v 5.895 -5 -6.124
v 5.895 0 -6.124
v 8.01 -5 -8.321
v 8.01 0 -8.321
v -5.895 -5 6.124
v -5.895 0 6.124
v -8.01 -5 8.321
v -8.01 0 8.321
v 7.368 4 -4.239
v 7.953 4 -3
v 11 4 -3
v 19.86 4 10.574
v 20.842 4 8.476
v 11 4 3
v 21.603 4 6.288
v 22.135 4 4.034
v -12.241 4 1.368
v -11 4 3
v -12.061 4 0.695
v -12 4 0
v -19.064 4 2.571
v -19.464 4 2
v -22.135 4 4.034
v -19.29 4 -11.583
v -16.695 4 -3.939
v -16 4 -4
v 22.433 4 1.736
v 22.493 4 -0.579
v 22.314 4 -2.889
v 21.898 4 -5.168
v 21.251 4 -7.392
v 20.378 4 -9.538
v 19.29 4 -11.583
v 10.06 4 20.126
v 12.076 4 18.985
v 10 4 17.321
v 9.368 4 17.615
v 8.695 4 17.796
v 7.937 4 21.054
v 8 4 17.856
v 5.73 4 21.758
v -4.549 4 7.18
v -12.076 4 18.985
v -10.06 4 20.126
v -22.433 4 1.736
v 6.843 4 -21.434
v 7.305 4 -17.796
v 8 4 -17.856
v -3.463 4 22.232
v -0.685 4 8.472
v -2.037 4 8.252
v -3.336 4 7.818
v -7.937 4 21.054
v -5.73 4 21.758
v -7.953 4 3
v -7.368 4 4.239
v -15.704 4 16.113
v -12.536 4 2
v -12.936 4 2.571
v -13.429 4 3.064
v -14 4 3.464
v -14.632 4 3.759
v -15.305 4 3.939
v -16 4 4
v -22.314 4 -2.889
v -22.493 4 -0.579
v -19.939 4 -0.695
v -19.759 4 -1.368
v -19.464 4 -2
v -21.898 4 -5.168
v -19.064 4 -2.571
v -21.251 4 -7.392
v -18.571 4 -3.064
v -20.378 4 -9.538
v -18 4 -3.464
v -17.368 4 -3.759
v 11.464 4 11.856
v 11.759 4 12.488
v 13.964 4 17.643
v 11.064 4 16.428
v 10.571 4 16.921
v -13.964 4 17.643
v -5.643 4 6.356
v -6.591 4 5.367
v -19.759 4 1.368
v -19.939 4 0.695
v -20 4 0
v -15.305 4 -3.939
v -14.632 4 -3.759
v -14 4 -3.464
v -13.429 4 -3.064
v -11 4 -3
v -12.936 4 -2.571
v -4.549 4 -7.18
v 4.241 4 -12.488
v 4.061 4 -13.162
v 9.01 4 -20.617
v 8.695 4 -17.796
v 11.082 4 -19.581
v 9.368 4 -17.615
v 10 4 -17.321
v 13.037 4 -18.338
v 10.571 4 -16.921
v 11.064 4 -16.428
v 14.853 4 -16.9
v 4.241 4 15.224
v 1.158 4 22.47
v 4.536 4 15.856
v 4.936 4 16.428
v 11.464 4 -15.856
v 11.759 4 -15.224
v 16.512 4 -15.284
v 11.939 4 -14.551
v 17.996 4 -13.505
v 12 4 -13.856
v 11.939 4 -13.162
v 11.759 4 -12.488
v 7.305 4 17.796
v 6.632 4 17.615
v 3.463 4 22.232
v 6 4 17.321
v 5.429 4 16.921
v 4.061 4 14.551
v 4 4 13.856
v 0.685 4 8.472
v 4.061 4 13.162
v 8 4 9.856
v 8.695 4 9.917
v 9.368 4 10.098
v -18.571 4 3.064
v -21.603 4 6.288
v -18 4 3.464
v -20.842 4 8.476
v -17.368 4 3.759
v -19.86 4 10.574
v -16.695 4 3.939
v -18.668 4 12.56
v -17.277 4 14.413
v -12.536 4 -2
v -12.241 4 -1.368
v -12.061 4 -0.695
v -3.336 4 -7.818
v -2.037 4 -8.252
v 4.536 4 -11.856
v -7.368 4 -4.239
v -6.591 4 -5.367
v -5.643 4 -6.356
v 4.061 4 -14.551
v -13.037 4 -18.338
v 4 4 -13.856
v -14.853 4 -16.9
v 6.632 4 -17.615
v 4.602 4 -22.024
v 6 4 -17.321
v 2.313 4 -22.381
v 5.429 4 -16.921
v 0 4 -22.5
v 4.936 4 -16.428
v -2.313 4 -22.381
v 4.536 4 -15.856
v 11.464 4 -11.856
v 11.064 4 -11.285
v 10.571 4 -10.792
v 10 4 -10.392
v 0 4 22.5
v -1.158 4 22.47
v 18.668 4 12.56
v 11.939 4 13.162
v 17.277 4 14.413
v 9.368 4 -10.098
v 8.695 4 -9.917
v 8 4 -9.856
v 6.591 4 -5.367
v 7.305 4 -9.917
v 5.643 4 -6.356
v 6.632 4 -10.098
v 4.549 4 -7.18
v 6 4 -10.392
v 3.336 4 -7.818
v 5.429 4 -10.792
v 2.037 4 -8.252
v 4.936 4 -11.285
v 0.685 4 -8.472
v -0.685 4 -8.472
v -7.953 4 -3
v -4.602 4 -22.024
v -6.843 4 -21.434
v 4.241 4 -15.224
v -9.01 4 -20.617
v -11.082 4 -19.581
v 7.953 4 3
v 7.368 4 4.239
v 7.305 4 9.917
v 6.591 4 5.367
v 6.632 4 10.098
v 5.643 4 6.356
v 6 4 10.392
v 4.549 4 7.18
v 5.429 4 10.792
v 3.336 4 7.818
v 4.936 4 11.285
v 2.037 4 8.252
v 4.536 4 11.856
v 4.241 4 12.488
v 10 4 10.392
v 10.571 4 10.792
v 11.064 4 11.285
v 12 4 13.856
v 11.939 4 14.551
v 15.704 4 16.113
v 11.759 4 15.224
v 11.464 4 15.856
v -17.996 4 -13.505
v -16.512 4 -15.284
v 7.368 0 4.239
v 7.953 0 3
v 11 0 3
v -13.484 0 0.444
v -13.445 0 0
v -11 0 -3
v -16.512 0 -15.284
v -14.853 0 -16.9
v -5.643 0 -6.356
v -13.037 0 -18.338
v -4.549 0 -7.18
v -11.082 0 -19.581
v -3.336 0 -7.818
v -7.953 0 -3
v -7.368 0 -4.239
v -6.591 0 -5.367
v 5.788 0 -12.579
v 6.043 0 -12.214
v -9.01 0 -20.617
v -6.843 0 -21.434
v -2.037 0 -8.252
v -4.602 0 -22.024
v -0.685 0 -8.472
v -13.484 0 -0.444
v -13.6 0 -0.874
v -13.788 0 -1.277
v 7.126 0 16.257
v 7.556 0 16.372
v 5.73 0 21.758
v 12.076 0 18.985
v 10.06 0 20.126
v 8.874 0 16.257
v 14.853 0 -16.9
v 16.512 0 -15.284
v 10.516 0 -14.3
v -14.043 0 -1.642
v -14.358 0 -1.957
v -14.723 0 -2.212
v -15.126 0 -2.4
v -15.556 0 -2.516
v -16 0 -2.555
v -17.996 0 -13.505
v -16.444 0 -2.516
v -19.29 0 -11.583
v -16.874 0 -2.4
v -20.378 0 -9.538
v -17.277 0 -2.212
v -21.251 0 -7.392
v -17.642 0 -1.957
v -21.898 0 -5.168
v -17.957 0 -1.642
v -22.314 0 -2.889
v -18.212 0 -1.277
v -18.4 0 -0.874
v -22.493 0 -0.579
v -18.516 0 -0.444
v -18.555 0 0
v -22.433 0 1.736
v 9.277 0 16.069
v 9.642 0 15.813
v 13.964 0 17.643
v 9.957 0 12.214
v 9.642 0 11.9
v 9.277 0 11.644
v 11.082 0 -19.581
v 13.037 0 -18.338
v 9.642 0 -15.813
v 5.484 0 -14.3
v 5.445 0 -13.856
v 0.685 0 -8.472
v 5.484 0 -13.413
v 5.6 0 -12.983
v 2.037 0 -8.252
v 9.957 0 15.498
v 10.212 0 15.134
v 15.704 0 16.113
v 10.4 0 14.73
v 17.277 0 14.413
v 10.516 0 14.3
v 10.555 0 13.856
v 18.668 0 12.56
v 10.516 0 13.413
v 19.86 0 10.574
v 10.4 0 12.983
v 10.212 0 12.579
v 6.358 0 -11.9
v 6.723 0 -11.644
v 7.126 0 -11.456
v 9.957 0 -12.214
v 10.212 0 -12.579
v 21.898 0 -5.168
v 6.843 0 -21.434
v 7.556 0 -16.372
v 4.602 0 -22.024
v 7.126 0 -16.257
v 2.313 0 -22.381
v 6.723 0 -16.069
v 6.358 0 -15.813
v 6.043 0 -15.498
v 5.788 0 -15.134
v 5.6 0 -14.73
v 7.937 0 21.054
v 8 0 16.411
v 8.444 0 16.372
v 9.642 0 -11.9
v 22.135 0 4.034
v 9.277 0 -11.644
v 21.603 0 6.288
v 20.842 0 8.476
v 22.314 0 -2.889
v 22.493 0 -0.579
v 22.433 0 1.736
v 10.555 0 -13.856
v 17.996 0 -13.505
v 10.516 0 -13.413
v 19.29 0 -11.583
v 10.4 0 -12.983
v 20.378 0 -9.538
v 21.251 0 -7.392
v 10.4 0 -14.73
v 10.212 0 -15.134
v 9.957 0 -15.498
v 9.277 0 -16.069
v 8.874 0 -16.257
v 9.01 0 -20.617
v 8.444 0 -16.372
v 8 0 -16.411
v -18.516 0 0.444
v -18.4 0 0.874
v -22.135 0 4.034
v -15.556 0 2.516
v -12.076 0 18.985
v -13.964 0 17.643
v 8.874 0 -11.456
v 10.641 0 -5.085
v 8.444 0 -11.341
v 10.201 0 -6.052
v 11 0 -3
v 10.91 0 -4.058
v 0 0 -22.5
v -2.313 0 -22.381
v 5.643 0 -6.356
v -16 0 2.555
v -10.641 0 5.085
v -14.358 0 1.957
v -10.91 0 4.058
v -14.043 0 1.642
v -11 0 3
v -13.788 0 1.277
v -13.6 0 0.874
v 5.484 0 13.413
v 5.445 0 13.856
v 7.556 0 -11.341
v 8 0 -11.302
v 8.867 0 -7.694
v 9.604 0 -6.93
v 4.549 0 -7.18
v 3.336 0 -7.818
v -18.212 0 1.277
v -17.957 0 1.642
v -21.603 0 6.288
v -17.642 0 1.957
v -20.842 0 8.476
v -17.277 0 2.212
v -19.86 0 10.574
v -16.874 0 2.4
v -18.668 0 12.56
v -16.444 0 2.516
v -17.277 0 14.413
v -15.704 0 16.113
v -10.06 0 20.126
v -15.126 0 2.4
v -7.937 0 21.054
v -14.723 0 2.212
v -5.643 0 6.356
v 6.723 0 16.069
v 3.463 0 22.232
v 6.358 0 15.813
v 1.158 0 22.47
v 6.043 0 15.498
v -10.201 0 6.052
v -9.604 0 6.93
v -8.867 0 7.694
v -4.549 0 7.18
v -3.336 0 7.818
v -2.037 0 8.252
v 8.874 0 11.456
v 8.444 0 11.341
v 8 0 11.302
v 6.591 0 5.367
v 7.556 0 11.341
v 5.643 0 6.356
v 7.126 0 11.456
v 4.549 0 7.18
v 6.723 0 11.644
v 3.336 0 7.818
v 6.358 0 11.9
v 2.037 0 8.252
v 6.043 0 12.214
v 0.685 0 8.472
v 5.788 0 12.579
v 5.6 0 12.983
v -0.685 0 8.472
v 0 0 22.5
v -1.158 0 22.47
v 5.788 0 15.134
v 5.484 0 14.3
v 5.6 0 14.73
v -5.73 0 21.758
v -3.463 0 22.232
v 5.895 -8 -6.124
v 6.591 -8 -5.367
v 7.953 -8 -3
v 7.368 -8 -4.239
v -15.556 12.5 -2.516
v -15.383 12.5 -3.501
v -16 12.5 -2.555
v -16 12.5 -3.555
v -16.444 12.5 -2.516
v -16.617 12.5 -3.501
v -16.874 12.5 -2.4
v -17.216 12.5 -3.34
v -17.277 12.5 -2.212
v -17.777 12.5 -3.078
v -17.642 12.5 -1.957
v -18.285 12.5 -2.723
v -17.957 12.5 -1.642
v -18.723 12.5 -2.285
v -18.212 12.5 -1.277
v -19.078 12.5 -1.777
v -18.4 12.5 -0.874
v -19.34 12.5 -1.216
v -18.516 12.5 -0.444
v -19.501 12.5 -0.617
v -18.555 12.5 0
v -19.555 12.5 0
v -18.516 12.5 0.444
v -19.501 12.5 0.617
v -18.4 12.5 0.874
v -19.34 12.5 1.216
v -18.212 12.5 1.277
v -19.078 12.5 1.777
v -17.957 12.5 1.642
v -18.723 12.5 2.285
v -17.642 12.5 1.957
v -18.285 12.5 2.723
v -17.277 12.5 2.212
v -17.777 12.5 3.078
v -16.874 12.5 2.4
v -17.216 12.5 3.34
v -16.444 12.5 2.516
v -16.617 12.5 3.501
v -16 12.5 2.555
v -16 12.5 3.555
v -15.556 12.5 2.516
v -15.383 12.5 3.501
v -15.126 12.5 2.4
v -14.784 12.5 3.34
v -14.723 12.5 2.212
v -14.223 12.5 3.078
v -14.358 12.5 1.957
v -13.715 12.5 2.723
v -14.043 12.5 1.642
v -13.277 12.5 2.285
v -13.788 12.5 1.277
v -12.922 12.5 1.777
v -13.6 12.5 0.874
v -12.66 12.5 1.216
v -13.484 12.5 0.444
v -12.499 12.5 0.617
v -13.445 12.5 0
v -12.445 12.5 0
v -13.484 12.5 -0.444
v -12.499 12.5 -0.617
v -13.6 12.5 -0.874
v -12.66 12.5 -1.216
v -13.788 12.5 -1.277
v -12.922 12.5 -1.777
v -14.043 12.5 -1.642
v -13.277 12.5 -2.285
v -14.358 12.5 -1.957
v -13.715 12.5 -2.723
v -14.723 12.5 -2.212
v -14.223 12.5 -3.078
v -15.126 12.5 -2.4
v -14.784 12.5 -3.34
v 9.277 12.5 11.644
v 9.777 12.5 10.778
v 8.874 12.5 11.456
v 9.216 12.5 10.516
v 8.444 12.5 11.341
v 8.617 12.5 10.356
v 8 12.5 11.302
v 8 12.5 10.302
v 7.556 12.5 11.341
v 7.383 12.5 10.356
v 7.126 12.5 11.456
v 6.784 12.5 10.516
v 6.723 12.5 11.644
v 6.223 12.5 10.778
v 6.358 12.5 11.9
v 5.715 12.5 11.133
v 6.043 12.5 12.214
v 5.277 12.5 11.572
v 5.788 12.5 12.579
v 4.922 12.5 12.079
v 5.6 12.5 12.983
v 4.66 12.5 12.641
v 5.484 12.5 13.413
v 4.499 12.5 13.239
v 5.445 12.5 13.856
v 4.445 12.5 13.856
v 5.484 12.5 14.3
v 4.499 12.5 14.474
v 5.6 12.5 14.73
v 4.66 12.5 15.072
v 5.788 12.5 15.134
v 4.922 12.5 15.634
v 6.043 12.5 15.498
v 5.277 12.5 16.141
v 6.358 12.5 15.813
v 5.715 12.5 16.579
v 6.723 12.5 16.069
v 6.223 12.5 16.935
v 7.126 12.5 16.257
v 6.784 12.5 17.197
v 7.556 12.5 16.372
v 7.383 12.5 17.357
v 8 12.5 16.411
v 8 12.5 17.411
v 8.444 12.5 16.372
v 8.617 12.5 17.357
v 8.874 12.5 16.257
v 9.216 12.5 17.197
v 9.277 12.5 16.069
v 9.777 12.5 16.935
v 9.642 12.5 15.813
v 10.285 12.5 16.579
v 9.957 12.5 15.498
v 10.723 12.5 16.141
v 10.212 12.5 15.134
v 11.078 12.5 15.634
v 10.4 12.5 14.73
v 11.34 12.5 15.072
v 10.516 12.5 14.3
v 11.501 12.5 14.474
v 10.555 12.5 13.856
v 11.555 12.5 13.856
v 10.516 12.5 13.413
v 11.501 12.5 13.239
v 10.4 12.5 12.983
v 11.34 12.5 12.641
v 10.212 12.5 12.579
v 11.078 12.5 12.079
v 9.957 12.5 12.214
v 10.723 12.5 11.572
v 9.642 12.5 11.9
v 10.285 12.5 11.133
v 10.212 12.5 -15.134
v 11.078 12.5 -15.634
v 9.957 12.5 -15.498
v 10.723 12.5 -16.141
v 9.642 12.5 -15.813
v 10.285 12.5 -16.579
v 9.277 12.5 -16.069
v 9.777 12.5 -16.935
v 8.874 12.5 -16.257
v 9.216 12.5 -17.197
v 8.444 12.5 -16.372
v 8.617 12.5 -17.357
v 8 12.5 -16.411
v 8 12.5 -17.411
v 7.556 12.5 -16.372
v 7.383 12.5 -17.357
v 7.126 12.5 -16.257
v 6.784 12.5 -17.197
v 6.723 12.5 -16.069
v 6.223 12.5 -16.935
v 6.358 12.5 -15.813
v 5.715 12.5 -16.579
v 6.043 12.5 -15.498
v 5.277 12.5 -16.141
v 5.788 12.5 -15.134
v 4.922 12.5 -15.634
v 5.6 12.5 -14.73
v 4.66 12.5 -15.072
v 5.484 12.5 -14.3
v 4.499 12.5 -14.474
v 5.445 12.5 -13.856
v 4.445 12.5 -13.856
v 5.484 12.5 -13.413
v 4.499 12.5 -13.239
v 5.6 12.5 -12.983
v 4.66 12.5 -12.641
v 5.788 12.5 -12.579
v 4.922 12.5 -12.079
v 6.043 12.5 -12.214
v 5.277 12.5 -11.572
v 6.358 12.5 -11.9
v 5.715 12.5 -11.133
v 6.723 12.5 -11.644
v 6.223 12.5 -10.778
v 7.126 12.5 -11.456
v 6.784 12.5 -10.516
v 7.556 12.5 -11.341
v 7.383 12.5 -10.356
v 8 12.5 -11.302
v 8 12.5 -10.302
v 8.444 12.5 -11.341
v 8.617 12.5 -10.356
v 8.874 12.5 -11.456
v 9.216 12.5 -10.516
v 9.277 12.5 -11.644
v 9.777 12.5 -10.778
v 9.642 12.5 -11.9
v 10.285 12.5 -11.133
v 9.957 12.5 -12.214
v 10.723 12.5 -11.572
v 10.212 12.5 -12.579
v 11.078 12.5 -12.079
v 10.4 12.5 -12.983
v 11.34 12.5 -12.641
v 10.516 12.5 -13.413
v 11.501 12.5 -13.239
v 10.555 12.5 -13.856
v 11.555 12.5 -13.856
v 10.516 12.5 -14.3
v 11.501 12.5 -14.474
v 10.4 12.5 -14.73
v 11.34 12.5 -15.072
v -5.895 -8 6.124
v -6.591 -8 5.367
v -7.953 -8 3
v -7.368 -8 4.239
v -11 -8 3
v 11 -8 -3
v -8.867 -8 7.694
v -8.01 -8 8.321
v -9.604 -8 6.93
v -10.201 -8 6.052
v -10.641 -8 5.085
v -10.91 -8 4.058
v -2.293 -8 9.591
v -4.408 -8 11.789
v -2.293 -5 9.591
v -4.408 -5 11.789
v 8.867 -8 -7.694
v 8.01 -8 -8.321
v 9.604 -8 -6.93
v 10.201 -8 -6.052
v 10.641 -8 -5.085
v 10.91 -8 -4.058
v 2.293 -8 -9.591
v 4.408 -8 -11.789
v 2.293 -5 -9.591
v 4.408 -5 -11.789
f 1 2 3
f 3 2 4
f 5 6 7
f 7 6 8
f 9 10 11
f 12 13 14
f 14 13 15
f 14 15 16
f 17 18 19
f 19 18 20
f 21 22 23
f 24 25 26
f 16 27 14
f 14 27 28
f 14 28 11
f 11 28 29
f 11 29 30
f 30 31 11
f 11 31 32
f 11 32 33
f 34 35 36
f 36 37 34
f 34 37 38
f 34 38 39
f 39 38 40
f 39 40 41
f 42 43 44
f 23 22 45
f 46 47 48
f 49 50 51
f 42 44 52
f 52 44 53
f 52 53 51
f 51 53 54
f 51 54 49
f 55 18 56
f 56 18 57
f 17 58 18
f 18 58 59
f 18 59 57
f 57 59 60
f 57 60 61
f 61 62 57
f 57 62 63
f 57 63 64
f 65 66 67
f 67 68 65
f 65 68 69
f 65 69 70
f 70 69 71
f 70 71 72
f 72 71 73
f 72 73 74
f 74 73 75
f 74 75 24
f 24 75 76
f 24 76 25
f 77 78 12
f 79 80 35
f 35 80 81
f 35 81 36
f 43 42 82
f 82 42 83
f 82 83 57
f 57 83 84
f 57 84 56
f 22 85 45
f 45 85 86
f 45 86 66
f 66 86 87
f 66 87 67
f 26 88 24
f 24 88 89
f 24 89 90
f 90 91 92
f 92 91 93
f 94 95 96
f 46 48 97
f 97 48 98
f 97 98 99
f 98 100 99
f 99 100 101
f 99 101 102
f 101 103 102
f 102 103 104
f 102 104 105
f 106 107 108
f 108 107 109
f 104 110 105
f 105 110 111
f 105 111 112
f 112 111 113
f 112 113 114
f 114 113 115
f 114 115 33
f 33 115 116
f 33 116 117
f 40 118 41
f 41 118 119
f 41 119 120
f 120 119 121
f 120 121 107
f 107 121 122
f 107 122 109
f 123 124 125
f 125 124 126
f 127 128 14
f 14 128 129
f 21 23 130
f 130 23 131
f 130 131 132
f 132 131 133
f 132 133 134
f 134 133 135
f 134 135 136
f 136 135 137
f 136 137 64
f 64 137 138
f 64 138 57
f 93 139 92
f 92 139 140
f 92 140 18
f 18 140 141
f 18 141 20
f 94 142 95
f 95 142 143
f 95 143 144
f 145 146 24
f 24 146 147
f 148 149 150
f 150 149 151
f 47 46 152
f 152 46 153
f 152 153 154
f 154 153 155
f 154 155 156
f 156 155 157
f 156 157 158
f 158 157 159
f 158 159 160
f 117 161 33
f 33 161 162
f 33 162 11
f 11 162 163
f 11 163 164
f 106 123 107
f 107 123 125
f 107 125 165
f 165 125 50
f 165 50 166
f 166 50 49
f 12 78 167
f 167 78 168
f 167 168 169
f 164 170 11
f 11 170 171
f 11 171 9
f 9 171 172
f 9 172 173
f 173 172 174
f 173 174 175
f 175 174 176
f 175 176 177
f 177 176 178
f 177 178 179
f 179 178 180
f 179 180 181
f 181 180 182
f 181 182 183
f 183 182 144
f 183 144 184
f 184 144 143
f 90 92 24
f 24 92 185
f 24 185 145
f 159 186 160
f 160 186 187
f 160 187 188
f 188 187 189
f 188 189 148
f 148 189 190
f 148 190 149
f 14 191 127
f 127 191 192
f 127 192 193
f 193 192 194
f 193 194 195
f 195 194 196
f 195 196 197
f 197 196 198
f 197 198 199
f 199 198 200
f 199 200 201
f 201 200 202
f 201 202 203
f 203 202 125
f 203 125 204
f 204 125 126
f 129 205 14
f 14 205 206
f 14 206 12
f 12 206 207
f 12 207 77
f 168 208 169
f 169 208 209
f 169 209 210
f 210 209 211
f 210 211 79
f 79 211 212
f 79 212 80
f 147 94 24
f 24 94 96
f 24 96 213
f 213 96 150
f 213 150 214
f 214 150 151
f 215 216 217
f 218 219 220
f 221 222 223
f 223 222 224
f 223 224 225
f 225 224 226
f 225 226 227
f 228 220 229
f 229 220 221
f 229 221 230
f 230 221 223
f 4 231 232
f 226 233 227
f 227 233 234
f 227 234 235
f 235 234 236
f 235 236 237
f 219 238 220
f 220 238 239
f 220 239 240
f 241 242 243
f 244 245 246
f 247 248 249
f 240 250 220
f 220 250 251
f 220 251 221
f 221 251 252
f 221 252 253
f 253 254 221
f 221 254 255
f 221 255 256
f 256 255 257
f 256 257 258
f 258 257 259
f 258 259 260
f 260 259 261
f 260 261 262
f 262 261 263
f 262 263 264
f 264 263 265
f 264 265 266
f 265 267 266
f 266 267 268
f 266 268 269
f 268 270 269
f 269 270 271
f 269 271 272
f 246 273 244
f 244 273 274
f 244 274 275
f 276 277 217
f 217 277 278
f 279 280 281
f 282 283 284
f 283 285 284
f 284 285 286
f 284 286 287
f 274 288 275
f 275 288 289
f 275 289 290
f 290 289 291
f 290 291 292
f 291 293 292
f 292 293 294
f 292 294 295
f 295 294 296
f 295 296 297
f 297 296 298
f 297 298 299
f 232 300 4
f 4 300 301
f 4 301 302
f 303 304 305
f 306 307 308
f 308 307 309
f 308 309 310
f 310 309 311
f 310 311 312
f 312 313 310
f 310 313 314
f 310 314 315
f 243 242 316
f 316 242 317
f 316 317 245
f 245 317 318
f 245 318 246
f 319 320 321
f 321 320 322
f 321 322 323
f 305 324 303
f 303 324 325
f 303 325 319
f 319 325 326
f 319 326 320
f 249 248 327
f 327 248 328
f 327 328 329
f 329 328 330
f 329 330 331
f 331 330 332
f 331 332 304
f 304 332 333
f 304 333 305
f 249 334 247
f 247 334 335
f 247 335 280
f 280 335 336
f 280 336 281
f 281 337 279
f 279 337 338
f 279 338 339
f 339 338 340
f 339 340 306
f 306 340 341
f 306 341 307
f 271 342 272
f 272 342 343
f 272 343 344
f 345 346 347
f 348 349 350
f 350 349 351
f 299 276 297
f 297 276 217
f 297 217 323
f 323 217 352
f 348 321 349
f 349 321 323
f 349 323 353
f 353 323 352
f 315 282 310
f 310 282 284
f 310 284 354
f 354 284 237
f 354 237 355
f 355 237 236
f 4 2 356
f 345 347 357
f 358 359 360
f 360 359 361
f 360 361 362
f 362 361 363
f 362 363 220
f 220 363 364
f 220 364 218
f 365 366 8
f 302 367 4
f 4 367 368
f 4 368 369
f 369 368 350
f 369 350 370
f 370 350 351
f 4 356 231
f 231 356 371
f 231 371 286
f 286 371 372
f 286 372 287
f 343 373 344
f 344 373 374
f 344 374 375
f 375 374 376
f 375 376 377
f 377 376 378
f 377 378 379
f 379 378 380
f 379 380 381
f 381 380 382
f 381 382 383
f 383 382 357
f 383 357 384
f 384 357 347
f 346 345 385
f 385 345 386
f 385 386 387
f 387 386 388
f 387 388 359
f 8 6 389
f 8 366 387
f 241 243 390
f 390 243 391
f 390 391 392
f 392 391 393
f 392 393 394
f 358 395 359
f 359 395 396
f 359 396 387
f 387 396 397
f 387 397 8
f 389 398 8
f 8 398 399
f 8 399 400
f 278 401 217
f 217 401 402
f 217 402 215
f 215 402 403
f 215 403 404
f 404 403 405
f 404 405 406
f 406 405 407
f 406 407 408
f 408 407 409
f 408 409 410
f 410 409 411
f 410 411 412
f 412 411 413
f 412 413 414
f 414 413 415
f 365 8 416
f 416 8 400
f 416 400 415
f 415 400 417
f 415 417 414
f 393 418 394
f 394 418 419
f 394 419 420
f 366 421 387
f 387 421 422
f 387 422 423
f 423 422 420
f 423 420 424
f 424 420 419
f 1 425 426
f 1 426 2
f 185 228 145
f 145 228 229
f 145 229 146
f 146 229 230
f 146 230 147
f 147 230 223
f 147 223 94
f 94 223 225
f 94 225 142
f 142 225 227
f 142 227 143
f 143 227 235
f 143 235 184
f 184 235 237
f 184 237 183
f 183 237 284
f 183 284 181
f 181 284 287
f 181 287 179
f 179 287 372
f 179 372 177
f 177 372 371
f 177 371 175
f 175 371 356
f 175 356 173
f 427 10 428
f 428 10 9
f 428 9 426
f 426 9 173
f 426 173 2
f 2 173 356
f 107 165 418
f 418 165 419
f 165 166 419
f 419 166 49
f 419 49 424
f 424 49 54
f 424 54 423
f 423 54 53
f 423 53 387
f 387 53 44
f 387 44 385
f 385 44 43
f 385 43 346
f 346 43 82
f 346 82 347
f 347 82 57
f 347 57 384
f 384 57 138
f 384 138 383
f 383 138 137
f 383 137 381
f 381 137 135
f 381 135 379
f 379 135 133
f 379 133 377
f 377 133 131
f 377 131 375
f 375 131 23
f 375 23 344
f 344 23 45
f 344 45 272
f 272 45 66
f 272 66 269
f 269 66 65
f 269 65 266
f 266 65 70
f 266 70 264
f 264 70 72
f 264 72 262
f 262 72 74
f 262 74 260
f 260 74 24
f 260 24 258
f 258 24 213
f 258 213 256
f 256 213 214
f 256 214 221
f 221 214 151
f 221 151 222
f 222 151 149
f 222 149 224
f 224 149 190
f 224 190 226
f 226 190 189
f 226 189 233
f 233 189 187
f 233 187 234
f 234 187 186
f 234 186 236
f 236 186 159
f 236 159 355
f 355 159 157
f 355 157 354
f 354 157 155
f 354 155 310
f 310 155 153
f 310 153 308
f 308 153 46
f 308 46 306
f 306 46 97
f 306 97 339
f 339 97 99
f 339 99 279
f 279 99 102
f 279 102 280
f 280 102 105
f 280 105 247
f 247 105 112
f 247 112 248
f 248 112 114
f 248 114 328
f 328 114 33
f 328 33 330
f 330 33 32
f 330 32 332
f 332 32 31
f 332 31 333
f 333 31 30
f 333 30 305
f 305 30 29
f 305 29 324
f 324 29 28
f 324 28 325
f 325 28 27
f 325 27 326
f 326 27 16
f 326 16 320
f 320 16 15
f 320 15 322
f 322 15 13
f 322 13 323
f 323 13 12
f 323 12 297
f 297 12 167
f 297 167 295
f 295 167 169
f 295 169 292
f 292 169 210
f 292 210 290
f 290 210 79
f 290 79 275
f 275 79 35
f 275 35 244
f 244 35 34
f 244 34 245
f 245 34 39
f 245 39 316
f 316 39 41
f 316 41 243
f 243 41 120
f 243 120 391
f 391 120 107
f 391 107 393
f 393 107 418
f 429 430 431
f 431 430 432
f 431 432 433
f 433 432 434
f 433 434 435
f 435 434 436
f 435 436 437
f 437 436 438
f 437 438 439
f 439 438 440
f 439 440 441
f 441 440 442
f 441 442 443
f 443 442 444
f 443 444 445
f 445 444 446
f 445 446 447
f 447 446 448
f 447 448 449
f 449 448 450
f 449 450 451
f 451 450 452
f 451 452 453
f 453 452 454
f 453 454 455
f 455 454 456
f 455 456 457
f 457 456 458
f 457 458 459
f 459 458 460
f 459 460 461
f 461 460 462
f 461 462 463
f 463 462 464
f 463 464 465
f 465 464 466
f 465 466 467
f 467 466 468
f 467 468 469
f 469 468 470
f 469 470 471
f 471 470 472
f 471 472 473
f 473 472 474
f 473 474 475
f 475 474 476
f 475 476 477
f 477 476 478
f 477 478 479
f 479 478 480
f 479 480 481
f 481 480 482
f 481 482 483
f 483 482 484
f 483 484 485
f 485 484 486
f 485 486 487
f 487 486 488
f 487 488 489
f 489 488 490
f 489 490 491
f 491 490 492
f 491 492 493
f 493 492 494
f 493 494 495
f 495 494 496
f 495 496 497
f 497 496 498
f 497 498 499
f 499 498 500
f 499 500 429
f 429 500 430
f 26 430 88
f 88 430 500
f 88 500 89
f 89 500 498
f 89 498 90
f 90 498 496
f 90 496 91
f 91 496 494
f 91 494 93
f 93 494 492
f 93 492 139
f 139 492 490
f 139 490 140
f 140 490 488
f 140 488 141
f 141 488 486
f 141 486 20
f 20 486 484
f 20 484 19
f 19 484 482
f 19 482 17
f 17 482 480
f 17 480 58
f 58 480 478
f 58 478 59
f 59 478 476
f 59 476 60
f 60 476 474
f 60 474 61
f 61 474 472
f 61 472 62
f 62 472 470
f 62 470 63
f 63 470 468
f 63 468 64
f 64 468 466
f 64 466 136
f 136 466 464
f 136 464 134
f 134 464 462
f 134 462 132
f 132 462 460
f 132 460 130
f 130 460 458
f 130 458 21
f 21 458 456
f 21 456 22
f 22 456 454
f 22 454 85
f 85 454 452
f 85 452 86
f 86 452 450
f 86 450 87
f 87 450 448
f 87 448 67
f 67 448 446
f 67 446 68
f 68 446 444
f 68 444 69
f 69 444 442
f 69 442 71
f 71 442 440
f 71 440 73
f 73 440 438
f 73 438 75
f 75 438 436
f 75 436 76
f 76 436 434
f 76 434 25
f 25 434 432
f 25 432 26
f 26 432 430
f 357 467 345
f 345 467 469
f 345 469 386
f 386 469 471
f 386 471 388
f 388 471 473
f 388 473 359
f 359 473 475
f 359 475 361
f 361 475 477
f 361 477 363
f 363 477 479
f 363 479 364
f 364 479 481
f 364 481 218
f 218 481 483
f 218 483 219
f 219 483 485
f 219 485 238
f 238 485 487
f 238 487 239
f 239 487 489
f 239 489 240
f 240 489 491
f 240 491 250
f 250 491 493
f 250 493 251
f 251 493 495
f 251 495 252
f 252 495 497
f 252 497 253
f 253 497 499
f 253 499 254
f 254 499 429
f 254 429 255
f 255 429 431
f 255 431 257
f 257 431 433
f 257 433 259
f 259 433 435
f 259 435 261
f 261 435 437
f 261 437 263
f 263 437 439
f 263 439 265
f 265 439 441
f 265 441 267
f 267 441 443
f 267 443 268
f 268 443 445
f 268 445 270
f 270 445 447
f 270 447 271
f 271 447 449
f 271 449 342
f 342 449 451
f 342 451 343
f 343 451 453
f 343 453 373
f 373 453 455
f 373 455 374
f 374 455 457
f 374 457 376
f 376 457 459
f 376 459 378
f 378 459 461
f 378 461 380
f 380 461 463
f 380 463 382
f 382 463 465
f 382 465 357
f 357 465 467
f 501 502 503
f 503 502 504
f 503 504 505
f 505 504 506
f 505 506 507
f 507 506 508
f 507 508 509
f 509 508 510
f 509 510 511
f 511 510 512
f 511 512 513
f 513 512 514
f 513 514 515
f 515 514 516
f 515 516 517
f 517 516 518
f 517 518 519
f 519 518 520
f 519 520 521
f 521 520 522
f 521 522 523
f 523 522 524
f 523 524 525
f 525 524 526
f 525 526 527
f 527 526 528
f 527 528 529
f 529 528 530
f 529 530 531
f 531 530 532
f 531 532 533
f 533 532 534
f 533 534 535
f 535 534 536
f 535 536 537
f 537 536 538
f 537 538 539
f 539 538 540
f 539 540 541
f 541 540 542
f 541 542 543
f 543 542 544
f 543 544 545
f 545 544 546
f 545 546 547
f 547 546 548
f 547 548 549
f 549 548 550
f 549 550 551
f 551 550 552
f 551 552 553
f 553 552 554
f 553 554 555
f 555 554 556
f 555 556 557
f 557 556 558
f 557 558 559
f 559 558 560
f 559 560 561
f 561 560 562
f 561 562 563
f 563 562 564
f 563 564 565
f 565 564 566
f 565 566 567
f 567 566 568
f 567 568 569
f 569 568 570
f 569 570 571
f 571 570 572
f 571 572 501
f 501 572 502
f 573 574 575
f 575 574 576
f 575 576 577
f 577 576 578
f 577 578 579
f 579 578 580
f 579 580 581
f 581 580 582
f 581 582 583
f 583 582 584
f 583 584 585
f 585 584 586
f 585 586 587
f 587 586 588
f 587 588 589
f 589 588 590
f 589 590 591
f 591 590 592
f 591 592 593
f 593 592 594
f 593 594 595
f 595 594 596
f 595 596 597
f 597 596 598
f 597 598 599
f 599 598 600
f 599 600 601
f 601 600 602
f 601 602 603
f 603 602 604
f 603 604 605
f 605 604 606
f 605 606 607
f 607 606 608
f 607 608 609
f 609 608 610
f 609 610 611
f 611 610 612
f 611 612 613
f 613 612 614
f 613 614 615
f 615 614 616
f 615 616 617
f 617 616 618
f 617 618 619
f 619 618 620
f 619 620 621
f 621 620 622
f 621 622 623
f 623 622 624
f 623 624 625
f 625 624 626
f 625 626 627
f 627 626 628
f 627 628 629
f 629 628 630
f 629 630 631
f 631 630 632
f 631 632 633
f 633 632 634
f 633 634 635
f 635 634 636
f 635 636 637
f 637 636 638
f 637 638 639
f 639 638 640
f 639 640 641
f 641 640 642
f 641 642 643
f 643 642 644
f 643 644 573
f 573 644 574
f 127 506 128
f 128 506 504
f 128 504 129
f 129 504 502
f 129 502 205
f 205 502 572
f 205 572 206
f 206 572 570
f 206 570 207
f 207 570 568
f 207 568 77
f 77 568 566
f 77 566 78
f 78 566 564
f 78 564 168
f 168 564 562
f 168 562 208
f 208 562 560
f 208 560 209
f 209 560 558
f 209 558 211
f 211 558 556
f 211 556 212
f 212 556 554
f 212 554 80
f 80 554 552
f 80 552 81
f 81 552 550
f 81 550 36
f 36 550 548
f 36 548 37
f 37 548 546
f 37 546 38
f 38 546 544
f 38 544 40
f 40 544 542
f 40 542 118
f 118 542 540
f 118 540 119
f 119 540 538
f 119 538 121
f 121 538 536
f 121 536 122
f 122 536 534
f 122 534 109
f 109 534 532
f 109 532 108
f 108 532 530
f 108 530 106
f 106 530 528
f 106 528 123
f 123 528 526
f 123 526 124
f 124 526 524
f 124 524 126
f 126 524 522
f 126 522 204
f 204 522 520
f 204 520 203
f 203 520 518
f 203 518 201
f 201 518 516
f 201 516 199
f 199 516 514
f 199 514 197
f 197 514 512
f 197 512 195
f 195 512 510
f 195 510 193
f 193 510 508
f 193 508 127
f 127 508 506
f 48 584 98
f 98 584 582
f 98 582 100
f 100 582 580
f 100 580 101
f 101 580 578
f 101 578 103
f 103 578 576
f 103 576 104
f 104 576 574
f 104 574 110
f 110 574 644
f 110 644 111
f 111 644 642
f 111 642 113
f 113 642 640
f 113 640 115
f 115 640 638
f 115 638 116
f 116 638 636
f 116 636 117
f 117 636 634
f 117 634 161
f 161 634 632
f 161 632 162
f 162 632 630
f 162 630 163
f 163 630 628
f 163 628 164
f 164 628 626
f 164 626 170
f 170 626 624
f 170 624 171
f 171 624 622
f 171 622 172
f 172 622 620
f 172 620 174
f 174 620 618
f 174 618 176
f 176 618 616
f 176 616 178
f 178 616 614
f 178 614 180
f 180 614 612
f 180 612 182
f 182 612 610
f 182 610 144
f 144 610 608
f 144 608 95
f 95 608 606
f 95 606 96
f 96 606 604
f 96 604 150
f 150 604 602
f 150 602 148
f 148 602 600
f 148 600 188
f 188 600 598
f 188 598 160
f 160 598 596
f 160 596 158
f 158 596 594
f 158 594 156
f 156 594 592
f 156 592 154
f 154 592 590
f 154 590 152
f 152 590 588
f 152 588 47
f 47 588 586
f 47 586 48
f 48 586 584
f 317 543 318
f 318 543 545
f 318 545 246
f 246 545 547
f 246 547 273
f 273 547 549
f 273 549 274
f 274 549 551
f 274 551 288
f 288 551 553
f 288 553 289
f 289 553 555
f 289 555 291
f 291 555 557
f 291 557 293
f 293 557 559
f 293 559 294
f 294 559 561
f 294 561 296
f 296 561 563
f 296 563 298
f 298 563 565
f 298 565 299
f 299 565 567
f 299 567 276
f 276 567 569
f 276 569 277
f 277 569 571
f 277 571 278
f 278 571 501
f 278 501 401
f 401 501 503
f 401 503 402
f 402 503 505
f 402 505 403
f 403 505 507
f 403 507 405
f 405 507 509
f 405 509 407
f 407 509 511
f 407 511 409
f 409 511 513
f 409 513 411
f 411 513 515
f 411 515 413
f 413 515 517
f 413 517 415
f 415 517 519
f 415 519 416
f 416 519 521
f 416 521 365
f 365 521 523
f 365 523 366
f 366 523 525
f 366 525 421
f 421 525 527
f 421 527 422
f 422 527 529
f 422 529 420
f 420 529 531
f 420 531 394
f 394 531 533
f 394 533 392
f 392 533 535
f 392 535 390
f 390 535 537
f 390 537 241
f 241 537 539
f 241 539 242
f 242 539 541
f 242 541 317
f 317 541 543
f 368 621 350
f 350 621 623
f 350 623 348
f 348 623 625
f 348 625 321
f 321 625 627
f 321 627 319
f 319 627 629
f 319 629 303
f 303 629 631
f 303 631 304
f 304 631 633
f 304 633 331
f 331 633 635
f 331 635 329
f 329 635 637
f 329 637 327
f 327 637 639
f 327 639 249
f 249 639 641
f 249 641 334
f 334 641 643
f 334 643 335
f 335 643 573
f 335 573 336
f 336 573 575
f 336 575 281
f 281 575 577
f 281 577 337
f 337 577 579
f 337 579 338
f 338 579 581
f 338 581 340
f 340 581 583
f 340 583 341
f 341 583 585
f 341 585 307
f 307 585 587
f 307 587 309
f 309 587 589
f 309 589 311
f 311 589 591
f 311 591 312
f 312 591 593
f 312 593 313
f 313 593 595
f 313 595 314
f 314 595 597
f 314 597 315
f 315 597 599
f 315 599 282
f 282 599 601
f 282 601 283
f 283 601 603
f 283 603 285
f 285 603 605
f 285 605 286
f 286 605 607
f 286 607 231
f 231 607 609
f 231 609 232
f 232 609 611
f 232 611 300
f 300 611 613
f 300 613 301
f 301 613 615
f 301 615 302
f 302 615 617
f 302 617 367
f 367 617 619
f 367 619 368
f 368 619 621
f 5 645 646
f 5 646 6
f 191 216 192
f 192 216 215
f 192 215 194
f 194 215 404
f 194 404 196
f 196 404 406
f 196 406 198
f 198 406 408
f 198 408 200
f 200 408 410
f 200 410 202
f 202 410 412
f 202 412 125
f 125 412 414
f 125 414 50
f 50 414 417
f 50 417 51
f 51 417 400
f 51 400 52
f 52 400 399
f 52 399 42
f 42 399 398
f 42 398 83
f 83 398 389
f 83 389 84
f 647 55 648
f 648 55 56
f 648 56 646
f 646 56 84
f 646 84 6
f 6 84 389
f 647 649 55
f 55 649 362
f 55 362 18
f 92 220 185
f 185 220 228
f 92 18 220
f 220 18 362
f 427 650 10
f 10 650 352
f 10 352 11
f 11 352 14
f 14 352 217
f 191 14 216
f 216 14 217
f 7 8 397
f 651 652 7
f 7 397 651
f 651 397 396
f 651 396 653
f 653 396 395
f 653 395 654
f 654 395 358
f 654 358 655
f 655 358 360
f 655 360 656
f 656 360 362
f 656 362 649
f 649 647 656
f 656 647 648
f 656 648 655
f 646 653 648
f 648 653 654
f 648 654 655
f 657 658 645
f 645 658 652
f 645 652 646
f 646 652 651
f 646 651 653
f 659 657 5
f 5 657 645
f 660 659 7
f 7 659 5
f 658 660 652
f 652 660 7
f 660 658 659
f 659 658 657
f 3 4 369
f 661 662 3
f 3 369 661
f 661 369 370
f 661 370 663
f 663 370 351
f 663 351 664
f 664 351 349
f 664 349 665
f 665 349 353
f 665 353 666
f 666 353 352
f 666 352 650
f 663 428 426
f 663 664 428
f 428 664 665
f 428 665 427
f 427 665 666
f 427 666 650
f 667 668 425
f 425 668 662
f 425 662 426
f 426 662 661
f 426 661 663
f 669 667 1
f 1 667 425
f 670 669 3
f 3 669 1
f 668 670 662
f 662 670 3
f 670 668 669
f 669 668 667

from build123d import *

# Parameters (mm, degrees)
ESQUISSE1_R                                 = 22.5
BOSS_EXTRU_1_DEPTH                          = 4
ESQUISSE2_R                                 = 4
BOSS_EXTRU_3_DEPTH                          = 8.5
CHANFREIN1_SIZE                             = 8.5
CHANFREIN1_SIZE_2                           = 0.445466124
ESQUISSE4_R                                 = 2.554533876
ENL_V_MAT_EXTRU_1_DEPTH                     = 35.186985828
R_P_TITION_CIRCULAIRE1_COUNT                = 3
CHANFREIN1_OF_R_P_TITION_CIRCULAIRE1_SIZE   = 8.5
CHANFREIN1_OF_R_P_TITION_CIRCULAIRE1_SIZE_2 = 0.445466124
ENL_V_MAT_EXTRU_2_REACH                     = 34.936
ESQUISSE5_R                                 = 8.5
ENL_V_START                                 = -4
ESQUISSE6_W                                 = 22
ESQUISSE6_H                                 = 6
ENL_V_MAT_EXTRU_4_DEPTH                     = 4
BOSS_EXTRU_5_DEPTH                          = 8
ESQUISSE8_W                                 = 3.05
ESQUISSE8_H                                 = 3
BOSS_EXTRU_6_DEPTH                          = 5
R_P_TITION_CIRCULAIRE3_COUNT                = 2


with BuildPart() as part:
    # Esquisse1 → Boss.-Extru.1 (new body)
    with BuildSketch(Plane(origin=(0, 0, 0), x_dir=(1, 0, 0), z_dir=(0, 1, 0))):
        with Locations(Location((0, 0, 0), (0, 0, 270))):
            Circle(ESQUISSE1_R)
    extrude(amount=BOSS_EXTRU_1_DEPTH)

    # Esquisse2 → Boss.-Extru.3 (add)
    with BuildSketch(Plane(origin=(0, 4, 0), x_dir=(1, 0, 0), z_dir=(0, 1, 0))):
        with Locations(Location((-16, 0, 0), (0, 0, 270))):
            Circle(ESQUISSE2_R)
    boss_extru_3 = extrude(amount=BOSS_EXTRU_3_DEPTH)

    # Chanfrein1
    # the kernel refuses this chamfer: 8.5, 0.445466124 mm, written as the material it takes off along each edge
    with BuildSketch(Plane(origin=(-16, 12.5, 0), x_dir=(0, 0, 1), z_dir=(-1, 0, 0))) as chanfrein1_piece_1_section:
        Polygon((4, -CHANFREIN1_SIZE), (4 - CHANFREIN1_SIZE_2, 0), (4, 0), align=None)
    chanfrein1_piece_1 = revolve(axis=Axis((-16, 12.5, 0), (0, 1, 0)), mode=Mode.PRIVATE)
    chanfrein1_piece_1 = split(chanfrein1_piece_1, bisect_by=Plane(origin=(-16, 4, -3.812448858), z_dir=(0, 1, 0)), keep=Keep.TOP, mode=Mode.PRIVATE)
    add(chanfrein1_piece_1, mode=Mode.SUBTRACT)

    # Esquisse4 → Enlèv. mat.-Extru.1 (cut, through all)
    with BuildSketch(Plane(origin=(0, 12.5, 0), x_dir=(1, 0, 0), z_dir=(0, 1, 0))):
        with Locations(Location((-16, 0, 0), (0, 0, 270))):
            Circle(ESQUISSE4_R)
    enl_v_mat_extru_1 = extrude(amount=-ENL_V_MAT_EXTRU_1_DEPTH, mode=Mode.SUBTRACT)

    # Répétition circulaire1: Boss.-Extru.3, Enlèv. mat.-Extru.1 ×3 about axis
    r_p_tition_circulaire1_axis = Axis((0, 0, 0), (0, 1, 0))
    add([boss_extru_3.rotate(r_p_tition_circulaire1_axis, i * 360 / R_P_TITION_CIRCULAIRE1_COUNT) for i in range(1, R_P_TITION_CIRCULAIRE1_COUNT)])
    add([enl_v_mat_extru_1.rotate(r_p_tition_circulaire1_axis, i * 360 / R_P_TITION_CIRCULAIRE1_COUNT) for i in range(1, R_P_TITION_CIRCULAIRE1_COUNT)], mode=Mode.SUBTRACT)

    # Chanfrein1 of Répétition circulaire1
    # the kernel refuses this chamfer: 8.5, 0.445466124 mm, written as the material it takes off along each edge
    with BuildSketch(Plane(origin=(8, 12.5, 13.856406461), x_dir=(0.8660254037844387, 0, -0.5000000000000001), z_dir=(0.5000000000000001, 0, 0.8660254037844387))) as chanfrein1_of_r_p_tition_circulaire1_piece_1_section:
        Polygon((4, -CHANFREIN1_OF_R_P_TITION_CIRCULAIRE1_SIZE), (4 - CHANFREIN1_OF_R_P_TITION_CIRCULAIRE1_SIZE_2, 0), (4, 0), align=None)
    chanfrein1_of_r_p_tition_circulaire1_piece_1 = revolve(axis=Axis((8, 12.5, 13.856406461), (0, 1, 0)), mode=Mode.PRIVATE)
    chanfrein1_of_r_p_tition_circulaire1_piece_1 = split(chanfrein1_of_r_p_tition_circulaire1_piece_1, bisect_by=Plane(origin=(4.698322438, 4, 15.762630889), z_dir=(0, 1, 0)), keep=Keep.TOP, mode=Mode.PRIVATE)
    add(chanfrein1_of_r_p_tition_circulaire1_piece_1, mode=Mode.SUBTRACT)
    with BuildSketch(Plane(origin=(8, 12.5, -13.856406461), x_dir=(-0.8660254037844384, 0, -0.5000000000000003), z_dir=(0.5000000000000003, 0, -0.8660254037844384))) as chanfrein1_of_r_p_tition_circulaire1_piece_2_section:
        Polygon((4, -CHANFREIN1_OF_R_P_TITION_CIRCULAIRE1_SIZE), (4 - CHANFREIN1_OF_R_P_TITION_CIRCULAIRE1_SIZE_2, 0), (4, 0), align=None)
    chanfrein1_of_r_p_tition_circulaire1_piece_2 = revolve(axis=Axis((8, 12.5, -13.856406461), (0, 1, 0)), mode=Mode.PRIVATE)
    chanfrein1_of_r_p_tition_circulaire1_piece_2 = split(chanfrein1_of_r_p_tition_circulaire1_piece_2, bisect_by=Plane(origin=(11.301677562, 4, -11.950182032), z_dir=(0, 1, 0)), keep=Keep.TOP, mode=Mode.PRIVATE)
    add(chanfrein1_of_r_p_tition_circulaire1_piece_2, mode=Mode.SUBTRACT)

    # Esquisse5 → Enlèv. mat.-Extru.2 (cut, up to next)
    with BuildSketch(Plane(origin=(0, 4, 0), x_dir=(1, 0, 0), z_dir=(0, 1, 0)), mode=Mode.PRIVATE) as enl_v_mat_extru_2_sk1:
        with Locations(Location((0, 0, 0), (0, 0, 270))):
            Circle(ESQUISSE5_R)
    enl_v_mat_extru_2_tool1 = extrude(enl_v_mat_extru_2_sk1.sketch, amount=-ENL_V_MAT_EXTRU_2_REACH, mode=Mode.PRIVATE) & part.part
    add(enl_v_mat_extru_2_tool1.solids().sort_by_distance((0, 4, 0))[0], mode=Mode.SUBTRACT)

    # Esquisse6 → Enlèv. mat.-Extru.4 (cut)
    with BuildSketch(Plane(origin=(0, 4, 0), x_dir=(1, 0, 0), z_dir=(0, 1, 0)).offset(ENL_V_START)):
        Rectangle(ESQUISSE6_W, ESQUISSE6_H)
    extrude(amount=ENL_V_MAT_EXTRU_4_DEPTH, mode=Mode.SUBTRACT)

    # Esquisse7 → Boss.-Extru.5 (add)
    with BuildSketch(Plane(origin=(0, 0, 0), x_dir=(1, 0, 0), z_dir=(0, 1, 0))):
        with BuildLine():
            Line((-7.95298686, -3), (-11, -3))
            ThreePointArc((-11, -3), (-10.201314207, -6.051828113), (-8.010041275, -8.321162104))
            Line((-8.010041275, -8.321162104), (-5.894835571, -6.123798951))
            ThreePointArc((-5.894835571, -6.123798951), (-7.097892398, -4.676529002), (-7.95298686, -3))
        make_face()
    boss_extru_5 = extrude(amount=-BOSS_EXTRU_5_DEPTH)

    # Esquisse8 → Boss.-Extru.6 (add)
    with BuildSketch(Plane(origin=(0, 0, 0), x_dir=(0.6935100671316063, 0, -0.7204469354415458), z_dir=(0.7204469354415458, 0, 0.6935100671316063))):
        with Locations((-10.025, -6.5)):
            Rectangle(ESQUISSE8_W, ESQUISSE8_H)
    boss_extru_6 = extrude(amount=BOSS_EXTRU_6_DEPTH)

    # Répétition circulaire3: Boss.-Extru.5, Boss.-Extru.6 ×2 about axis
    r_p_tition_circulaire3_axis = Axis((0, 0, 0), (0, 1, 0))
    add([boss_extru_5.rotate(r_p_tition_circulaire3_axis, i * 360 / R_P_TITION_CIRCULAIRE3_COUNT) for i in range(1, R_P_TITION_CIRCULAIRE3_COUNT)])
    add([boss_extru_6.rotate(r_p_tition_circulaire3_axis, i * 360 / R_P_TITION_CIRCULAIRE3_COUNT) for i in range(1, R_P_TITION_CIRCULAIRE3_COUNT)])


solid = part.part
